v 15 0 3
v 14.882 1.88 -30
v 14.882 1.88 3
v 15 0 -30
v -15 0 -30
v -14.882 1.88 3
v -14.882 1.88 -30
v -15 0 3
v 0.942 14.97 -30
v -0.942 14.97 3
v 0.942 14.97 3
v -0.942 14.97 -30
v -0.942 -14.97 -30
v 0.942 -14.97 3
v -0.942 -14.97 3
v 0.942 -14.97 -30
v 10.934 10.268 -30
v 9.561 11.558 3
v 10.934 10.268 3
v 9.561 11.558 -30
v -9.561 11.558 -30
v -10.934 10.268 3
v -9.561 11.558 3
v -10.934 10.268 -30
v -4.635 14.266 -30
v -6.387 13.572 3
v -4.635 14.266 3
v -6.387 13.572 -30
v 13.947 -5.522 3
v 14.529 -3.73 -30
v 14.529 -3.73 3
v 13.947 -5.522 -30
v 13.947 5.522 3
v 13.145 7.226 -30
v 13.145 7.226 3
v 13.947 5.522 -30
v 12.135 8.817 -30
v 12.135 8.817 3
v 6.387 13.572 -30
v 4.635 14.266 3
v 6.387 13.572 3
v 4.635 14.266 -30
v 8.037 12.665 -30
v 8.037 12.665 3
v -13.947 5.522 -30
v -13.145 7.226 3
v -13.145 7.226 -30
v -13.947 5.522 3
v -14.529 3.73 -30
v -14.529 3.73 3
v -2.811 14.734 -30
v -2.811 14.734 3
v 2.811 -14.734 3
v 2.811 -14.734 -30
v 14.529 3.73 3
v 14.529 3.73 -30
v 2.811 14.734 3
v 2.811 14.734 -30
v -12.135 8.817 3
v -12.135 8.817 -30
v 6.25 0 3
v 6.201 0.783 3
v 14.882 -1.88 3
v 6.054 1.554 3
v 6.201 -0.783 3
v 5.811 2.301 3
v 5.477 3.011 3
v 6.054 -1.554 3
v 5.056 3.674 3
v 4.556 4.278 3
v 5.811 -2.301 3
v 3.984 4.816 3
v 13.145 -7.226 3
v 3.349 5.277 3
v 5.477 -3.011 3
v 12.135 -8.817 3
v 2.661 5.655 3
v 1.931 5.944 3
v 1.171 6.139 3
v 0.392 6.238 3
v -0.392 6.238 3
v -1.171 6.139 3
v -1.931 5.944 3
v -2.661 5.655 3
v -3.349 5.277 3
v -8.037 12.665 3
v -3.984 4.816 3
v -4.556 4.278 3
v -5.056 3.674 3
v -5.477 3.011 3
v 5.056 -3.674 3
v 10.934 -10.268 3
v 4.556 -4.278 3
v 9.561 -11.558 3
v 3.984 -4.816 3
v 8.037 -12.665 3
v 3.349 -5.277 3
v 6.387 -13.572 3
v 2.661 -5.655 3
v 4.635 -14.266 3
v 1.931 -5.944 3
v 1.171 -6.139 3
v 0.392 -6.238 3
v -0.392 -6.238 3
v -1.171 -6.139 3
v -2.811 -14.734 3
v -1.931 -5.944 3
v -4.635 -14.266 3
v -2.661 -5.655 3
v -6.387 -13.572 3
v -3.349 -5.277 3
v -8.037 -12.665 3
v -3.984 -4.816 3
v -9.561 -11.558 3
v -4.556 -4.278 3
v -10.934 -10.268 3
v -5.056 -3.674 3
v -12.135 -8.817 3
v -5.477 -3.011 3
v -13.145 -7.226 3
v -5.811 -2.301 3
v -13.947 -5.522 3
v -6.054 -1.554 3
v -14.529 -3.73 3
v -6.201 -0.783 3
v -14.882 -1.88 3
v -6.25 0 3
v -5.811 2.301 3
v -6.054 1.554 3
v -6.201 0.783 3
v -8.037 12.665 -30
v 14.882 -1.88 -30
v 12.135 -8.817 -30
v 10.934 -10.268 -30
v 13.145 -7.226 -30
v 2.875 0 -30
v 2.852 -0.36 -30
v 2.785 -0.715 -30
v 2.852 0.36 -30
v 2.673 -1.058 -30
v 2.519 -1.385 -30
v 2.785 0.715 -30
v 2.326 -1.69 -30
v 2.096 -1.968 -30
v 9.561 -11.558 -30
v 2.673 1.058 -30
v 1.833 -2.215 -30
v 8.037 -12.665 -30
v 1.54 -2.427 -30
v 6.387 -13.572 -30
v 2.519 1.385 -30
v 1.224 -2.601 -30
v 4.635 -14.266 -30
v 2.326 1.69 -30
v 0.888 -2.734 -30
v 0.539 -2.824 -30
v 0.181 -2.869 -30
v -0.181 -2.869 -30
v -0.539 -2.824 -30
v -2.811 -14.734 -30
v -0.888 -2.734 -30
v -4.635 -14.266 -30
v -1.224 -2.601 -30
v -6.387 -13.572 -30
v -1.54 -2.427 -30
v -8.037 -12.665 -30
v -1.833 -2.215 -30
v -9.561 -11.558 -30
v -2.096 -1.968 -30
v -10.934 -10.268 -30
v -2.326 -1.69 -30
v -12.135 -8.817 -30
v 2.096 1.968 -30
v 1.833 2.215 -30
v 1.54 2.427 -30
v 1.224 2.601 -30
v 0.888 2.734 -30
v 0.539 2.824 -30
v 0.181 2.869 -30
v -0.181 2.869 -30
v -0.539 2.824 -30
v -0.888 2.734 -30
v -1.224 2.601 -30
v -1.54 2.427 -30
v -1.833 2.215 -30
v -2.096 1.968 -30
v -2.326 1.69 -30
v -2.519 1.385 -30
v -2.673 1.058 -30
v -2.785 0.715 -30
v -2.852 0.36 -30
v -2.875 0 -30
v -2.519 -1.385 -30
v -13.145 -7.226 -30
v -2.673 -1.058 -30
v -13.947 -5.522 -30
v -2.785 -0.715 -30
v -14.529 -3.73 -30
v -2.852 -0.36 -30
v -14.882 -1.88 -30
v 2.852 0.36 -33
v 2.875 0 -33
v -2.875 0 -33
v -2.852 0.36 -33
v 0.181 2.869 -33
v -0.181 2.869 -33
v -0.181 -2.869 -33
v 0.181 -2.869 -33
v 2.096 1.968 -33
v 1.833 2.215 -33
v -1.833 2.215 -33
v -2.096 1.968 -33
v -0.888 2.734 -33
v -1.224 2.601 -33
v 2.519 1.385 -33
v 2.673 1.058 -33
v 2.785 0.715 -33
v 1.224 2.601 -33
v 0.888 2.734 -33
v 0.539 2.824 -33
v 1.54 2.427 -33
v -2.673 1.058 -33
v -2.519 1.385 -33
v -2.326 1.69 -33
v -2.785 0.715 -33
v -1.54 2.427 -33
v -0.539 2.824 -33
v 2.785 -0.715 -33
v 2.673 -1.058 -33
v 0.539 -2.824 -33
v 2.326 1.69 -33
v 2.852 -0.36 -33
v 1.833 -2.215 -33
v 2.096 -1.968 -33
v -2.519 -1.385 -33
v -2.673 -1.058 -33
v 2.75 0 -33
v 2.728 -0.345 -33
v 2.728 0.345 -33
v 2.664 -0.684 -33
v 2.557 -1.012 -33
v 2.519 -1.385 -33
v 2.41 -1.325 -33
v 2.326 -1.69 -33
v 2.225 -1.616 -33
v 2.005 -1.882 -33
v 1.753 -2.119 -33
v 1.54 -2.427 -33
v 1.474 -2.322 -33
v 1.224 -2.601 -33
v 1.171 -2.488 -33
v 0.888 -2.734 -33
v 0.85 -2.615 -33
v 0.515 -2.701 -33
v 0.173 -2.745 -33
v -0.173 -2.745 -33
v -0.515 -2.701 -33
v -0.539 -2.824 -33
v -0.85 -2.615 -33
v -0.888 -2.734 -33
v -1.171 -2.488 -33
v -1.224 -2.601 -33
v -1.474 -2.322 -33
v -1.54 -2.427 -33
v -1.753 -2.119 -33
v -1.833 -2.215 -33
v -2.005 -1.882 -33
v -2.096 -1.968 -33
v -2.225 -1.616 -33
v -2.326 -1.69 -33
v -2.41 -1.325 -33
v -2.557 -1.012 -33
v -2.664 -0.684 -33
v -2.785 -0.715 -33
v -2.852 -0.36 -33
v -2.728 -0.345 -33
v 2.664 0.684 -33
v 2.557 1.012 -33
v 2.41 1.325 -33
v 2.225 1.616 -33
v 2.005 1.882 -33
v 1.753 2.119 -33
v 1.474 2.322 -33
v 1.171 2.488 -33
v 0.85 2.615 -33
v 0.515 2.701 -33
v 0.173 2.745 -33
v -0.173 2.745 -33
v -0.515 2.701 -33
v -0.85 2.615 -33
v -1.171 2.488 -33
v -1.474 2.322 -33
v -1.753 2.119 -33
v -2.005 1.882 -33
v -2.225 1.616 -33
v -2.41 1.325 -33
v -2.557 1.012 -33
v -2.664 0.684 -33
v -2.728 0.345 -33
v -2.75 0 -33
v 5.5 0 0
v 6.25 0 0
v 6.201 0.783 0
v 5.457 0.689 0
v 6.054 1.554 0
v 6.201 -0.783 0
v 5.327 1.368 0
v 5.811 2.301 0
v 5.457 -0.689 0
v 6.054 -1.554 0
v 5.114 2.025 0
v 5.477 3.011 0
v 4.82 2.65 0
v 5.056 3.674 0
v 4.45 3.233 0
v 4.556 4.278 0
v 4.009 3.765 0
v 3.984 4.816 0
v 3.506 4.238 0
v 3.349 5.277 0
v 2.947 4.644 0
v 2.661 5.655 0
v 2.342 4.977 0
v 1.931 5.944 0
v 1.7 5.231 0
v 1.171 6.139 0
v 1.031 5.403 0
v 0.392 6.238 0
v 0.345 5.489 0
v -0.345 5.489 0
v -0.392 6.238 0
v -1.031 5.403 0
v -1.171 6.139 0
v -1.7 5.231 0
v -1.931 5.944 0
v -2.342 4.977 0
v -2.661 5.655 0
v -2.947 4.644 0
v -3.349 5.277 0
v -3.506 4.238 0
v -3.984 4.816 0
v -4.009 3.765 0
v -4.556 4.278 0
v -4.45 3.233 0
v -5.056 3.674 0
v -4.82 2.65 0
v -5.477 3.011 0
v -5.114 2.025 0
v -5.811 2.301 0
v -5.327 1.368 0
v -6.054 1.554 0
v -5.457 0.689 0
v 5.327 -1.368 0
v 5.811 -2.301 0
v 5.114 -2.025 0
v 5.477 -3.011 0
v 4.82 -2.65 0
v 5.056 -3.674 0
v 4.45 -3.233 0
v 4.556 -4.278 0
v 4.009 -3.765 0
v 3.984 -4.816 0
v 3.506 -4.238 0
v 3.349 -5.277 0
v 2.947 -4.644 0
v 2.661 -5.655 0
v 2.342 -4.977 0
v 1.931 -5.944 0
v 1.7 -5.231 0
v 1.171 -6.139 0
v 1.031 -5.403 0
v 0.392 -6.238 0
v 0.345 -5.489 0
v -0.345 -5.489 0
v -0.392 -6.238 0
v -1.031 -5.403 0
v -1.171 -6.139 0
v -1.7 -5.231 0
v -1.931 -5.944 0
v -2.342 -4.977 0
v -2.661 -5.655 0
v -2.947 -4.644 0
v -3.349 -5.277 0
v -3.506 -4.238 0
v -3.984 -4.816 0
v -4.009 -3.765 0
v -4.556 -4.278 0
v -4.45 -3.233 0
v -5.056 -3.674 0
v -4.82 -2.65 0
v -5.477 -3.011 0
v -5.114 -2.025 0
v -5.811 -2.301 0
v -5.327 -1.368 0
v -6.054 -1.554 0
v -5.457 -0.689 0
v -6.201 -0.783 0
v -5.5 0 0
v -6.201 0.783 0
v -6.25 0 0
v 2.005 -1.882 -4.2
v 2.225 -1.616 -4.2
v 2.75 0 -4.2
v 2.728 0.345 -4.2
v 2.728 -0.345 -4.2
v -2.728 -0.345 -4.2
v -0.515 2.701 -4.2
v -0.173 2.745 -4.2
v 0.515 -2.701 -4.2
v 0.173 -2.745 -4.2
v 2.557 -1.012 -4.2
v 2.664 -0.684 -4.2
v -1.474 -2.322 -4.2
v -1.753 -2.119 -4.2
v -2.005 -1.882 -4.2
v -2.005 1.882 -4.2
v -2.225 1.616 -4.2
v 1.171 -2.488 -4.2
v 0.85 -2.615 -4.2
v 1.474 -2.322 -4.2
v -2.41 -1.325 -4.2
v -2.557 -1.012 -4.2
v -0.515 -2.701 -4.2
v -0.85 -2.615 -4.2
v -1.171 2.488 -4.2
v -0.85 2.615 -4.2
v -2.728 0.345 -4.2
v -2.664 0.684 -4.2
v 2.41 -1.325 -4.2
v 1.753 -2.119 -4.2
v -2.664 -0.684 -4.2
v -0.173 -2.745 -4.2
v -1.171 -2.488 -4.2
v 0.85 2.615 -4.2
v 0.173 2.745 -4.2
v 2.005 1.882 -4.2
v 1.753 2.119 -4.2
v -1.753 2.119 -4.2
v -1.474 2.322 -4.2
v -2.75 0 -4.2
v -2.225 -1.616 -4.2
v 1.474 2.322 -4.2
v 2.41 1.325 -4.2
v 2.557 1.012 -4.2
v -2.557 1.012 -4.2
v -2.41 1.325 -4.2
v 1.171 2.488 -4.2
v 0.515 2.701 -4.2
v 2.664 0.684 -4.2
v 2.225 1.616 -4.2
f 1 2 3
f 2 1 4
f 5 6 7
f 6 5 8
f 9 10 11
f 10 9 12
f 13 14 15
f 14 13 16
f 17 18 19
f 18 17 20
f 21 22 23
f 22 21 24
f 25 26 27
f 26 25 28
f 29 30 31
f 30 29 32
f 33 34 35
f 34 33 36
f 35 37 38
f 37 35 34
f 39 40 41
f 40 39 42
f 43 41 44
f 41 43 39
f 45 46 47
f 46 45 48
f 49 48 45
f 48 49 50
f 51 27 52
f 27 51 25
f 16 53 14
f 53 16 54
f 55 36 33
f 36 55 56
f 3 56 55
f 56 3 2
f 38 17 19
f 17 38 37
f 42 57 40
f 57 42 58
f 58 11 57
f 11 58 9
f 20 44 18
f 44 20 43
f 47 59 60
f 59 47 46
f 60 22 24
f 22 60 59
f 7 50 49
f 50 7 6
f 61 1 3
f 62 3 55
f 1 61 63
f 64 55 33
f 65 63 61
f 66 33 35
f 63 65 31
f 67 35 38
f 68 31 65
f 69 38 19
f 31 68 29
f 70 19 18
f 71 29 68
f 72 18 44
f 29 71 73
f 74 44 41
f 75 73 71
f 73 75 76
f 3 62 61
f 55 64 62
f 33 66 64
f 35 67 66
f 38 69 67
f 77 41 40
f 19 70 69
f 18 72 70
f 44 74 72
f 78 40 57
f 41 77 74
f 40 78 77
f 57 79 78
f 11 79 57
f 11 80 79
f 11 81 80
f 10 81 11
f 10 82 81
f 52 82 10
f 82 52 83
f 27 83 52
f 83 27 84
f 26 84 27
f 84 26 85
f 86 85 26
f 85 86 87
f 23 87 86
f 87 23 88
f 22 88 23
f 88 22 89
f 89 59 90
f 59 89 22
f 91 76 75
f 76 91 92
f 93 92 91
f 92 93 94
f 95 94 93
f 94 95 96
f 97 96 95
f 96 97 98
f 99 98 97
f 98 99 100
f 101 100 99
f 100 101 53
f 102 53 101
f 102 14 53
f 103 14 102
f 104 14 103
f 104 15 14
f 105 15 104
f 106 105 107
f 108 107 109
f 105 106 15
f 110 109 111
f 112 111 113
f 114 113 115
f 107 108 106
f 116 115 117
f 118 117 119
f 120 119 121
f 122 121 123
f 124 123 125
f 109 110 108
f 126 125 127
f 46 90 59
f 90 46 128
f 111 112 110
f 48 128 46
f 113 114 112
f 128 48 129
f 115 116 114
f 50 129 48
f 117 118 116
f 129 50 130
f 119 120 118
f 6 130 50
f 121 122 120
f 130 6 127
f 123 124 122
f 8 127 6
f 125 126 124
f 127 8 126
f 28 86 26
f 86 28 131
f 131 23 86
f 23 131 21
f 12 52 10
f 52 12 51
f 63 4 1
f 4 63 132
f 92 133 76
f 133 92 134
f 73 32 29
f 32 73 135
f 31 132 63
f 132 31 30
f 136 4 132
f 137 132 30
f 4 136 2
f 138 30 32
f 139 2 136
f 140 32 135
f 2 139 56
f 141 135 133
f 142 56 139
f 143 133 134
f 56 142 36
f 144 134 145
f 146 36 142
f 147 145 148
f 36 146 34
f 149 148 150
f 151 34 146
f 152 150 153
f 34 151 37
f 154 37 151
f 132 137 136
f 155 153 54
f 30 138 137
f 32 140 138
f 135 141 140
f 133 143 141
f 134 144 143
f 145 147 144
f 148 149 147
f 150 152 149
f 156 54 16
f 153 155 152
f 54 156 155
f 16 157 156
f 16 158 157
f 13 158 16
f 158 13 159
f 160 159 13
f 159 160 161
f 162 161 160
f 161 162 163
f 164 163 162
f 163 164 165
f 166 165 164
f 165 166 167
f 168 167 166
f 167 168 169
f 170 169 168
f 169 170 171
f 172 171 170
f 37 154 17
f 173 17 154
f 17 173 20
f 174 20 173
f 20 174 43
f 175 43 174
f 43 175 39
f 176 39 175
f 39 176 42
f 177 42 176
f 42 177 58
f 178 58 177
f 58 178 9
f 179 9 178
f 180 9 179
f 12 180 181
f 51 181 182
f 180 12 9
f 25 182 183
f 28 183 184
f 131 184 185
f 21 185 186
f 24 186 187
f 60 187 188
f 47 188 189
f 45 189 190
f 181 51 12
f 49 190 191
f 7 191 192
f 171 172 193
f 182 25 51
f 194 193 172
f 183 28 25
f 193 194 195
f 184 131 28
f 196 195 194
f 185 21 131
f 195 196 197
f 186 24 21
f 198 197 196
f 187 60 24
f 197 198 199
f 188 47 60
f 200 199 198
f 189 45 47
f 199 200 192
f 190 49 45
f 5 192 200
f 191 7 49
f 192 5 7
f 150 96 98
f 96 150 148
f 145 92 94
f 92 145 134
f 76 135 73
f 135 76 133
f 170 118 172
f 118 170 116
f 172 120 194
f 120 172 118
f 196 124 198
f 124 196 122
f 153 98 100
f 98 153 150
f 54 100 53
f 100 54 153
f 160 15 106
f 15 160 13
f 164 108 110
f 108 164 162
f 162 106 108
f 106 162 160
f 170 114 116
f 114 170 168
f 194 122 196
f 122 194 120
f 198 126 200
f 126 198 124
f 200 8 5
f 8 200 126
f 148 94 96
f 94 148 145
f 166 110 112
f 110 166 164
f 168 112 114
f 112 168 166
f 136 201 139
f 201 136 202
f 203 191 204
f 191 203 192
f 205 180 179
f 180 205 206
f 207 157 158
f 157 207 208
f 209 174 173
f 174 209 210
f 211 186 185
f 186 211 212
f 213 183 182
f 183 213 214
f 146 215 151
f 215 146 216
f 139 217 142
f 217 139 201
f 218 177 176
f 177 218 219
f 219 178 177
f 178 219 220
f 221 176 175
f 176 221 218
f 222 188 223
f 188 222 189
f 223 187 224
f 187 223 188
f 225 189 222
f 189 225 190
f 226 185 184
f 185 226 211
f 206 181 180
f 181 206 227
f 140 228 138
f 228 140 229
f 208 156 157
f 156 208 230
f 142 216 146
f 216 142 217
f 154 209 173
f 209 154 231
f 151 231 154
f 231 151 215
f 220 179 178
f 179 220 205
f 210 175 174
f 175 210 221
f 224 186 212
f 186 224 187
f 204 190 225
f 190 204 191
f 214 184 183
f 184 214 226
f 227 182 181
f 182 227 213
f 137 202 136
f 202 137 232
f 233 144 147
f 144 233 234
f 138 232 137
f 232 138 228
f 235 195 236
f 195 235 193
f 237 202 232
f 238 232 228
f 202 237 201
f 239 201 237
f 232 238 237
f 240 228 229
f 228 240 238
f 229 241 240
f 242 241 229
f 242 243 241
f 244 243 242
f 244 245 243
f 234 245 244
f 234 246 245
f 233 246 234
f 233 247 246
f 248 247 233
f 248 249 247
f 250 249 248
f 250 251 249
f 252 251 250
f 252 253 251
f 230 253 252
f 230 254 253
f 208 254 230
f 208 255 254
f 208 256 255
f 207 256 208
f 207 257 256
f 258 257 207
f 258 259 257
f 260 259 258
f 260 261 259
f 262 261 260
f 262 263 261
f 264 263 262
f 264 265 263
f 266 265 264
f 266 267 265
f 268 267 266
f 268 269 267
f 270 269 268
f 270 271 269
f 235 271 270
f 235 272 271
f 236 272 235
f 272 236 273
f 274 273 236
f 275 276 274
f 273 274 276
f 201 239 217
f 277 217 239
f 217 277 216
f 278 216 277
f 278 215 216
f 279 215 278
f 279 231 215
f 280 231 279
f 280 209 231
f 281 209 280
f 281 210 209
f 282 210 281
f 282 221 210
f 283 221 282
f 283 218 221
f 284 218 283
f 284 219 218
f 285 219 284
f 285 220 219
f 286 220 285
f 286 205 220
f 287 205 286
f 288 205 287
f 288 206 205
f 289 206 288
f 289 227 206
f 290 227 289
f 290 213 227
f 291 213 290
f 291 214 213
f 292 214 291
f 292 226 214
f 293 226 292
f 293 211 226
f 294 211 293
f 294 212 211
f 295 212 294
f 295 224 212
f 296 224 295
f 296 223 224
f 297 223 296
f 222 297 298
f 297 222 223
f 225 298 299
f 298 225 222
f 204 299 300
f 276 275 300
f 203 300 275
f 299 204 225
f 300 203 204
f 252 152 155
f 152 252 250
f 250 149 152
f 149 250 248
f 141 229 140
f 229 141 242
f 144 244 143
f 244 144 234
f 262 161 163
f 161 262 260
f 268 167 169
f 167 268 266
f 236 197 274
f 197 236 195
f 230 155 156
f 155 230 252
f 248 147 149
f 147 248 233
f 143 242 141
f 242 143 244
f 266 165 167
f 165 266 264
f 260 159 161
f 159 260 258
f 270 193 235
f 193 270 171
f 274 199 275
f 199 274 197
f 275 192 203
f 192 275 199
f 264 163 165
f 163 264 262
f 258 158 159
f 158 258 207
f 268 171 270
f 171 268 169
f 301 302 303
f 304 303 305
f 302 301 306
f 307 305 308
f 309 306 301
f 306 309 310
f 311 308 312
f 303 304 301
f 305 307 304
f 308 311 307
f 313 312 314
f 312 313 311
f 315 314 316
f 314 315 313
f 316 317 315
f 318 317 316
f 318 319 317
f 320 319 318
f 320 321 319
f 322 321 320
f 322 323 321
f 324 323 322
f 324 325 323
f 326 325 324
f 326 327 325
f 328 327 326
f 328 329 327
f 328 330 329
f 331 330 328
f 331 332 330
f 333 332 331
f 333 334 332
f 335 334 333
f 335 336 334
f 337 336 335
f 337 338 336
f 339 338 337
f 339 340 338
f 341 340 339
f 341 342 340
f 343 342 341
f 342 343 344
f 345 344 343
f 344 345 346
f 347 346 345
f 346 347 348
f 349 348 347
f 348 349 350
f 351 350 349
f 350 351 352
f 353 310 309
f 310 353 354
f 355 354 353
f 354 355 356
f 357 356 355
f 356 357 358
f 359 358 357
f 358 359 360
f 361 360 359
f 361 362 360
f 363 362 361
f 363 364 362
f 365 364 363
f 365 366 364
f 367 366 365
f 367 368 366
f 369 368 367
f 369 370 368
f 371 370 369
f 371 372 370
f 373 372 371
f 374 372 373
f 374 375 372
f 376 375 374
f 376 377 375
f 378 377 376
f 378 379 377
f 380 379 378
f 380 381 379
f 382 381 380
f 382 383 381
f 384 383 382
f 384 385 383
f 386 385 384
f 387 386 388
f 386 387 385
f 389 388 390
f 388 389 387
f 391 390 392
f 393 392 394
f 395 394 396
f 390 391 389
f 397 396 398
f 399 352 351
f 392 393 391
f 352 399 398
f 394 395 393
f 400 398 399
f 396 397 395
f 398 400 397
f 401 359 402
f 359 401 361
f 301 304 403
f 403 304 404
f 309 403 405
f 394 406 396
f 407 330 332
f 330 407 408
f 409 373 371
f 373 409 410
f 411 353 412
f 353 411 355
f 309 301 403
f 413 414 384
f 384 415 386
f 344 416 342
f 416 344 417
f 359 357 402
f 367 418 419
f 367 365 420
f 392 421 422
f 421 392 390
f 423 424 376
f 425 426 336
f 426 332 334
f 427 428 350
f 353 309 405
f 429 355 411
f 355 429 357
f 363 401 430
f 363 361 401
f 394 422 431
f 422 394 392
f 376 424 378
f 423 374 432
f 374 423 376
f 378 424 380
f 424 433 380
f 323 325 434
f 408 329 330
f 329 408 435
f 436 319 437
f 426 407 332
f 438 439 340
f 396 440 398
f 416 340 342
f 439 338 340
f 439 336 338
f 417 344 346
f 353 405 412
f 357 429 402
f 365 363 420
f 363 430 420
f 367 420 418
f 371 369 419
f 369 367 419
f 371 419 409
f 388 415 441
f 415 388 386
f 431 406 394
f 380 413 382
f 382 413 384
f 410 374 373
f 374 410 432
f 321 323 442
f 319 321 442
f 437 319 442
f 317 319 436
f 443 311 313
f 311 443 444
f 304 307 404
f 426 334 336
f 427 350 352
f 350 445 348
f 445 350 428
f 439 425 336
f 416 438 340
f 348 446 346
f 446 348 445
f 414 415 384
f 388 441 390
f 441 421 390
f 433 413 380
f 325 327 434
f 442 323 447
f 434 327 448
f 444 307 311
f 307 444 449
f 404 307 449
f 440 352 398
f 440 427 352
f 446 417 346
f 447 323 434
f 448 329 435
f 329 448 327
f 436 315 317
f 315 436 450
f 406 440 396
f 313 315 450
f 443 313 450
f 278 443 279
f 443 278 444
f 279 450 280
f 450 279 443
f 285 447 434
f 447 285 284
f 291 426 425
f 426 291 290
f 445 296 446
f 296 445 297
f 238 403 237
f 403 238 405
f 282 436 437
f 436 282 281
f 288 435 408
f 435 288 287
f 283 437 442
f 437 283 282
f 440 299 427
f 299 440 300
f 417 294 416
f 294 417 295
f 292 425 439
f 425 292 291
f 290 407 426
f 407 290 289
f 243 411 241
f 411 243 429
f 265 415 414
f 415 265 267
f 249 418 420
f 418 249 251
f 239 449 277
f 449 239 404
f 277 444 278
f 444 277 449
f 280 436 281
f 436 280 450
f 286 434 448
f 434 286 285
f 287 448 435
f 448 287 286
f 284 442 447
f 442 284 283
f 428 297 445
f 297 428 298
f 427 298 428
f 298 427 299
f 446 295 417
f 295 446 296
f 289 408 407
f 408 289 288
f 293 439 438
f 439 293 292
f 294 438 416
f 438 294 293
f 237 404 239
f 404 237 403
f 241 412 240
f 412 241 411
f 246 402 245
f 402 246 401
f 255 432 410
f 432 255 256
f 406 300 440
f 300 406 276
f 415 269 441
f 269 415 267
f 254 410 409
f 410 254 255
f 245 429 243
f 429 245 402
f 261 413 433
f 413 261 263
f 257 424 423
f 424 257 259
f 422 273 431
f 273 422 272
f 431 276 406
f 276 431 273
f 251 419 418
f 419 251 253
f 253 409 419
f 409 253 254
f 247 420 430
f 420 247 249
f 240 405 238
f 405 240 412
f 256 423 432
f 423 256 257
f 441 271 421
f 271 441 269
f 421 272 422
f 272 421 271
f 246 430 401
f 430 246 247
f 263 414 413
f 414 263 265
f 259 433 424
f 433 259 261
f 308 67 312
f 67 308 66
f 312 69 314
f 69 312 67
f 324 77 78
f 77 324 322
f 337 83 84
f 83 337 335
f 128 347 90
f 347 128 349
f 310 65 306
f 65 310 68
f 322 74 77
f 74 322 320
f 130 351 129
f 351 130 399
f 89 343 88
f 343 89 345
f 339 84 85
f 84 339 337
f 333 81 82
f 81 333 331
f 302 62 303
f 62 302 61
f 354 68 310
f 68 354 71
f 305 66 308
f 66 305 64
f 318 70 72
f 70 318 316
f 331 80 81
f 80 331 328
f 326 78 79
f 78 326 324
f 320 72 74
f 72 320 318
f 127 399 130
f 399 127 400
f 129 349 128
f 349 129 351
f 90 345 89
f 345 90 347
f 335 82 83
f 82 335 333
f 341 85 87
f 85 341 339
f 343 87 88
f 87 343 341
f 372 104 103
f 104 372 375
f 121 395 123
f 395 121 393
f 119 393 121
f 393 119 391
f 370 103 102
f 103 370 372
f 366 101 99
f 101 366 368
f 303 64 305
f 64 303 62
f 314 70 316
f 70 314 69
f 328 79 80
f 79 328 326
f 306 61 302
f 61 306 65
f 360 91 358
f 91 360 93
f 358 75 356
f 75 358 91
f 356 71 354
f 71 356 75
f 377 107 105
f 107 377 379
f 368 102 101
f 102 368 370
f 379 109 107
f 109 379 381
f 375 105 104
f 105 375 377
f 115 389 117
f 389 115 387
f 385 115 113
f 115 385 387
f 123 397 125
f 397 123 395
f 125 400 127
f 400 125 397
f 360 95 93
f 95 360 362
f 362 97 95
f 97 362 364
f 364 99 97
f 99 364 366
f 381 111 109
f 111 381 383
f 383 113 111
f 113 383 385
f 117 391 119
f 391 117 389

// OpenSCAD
$fn = 50;


difference() {
	union() {
		translate(v = [0, 0, -30.0000000000]) {
			cylinder(h = 33, r = 15.0000000000);
		}
		#translate(v = [0, 0, -33.0000000000]) {
			cylinder(h = 33, r = 2.8750000000);
		}
	}
	union() {
		translate(v = [0, 0, 0]) {
			rotate(a = [0, 0, 0]) {
				difference() {
					union() {
						translate(v = [0, 0, -33.0000000000]) {
							cylinder(h = 33, r = 2.2500000000);
						}
						translate(v = [0, 0, -4.2000000000]) {
							cylinder(h = 4.2000000000, r1 = 2.7500000000, r2 = 5.5000000000);
						}
						translate(v = [0, 0, -33.0000000000]) {
							cylinder(h = 33, r = 2.7500000000);
						}
						translate(v = [0, 0, -33.0000000000]) {
							cylinder(h = 33, r = 2.2500000000);
						}
					}
					union();
				}
			}
		}
		#cylinder(h = 3, r = 6.2500000000);
	}
}
